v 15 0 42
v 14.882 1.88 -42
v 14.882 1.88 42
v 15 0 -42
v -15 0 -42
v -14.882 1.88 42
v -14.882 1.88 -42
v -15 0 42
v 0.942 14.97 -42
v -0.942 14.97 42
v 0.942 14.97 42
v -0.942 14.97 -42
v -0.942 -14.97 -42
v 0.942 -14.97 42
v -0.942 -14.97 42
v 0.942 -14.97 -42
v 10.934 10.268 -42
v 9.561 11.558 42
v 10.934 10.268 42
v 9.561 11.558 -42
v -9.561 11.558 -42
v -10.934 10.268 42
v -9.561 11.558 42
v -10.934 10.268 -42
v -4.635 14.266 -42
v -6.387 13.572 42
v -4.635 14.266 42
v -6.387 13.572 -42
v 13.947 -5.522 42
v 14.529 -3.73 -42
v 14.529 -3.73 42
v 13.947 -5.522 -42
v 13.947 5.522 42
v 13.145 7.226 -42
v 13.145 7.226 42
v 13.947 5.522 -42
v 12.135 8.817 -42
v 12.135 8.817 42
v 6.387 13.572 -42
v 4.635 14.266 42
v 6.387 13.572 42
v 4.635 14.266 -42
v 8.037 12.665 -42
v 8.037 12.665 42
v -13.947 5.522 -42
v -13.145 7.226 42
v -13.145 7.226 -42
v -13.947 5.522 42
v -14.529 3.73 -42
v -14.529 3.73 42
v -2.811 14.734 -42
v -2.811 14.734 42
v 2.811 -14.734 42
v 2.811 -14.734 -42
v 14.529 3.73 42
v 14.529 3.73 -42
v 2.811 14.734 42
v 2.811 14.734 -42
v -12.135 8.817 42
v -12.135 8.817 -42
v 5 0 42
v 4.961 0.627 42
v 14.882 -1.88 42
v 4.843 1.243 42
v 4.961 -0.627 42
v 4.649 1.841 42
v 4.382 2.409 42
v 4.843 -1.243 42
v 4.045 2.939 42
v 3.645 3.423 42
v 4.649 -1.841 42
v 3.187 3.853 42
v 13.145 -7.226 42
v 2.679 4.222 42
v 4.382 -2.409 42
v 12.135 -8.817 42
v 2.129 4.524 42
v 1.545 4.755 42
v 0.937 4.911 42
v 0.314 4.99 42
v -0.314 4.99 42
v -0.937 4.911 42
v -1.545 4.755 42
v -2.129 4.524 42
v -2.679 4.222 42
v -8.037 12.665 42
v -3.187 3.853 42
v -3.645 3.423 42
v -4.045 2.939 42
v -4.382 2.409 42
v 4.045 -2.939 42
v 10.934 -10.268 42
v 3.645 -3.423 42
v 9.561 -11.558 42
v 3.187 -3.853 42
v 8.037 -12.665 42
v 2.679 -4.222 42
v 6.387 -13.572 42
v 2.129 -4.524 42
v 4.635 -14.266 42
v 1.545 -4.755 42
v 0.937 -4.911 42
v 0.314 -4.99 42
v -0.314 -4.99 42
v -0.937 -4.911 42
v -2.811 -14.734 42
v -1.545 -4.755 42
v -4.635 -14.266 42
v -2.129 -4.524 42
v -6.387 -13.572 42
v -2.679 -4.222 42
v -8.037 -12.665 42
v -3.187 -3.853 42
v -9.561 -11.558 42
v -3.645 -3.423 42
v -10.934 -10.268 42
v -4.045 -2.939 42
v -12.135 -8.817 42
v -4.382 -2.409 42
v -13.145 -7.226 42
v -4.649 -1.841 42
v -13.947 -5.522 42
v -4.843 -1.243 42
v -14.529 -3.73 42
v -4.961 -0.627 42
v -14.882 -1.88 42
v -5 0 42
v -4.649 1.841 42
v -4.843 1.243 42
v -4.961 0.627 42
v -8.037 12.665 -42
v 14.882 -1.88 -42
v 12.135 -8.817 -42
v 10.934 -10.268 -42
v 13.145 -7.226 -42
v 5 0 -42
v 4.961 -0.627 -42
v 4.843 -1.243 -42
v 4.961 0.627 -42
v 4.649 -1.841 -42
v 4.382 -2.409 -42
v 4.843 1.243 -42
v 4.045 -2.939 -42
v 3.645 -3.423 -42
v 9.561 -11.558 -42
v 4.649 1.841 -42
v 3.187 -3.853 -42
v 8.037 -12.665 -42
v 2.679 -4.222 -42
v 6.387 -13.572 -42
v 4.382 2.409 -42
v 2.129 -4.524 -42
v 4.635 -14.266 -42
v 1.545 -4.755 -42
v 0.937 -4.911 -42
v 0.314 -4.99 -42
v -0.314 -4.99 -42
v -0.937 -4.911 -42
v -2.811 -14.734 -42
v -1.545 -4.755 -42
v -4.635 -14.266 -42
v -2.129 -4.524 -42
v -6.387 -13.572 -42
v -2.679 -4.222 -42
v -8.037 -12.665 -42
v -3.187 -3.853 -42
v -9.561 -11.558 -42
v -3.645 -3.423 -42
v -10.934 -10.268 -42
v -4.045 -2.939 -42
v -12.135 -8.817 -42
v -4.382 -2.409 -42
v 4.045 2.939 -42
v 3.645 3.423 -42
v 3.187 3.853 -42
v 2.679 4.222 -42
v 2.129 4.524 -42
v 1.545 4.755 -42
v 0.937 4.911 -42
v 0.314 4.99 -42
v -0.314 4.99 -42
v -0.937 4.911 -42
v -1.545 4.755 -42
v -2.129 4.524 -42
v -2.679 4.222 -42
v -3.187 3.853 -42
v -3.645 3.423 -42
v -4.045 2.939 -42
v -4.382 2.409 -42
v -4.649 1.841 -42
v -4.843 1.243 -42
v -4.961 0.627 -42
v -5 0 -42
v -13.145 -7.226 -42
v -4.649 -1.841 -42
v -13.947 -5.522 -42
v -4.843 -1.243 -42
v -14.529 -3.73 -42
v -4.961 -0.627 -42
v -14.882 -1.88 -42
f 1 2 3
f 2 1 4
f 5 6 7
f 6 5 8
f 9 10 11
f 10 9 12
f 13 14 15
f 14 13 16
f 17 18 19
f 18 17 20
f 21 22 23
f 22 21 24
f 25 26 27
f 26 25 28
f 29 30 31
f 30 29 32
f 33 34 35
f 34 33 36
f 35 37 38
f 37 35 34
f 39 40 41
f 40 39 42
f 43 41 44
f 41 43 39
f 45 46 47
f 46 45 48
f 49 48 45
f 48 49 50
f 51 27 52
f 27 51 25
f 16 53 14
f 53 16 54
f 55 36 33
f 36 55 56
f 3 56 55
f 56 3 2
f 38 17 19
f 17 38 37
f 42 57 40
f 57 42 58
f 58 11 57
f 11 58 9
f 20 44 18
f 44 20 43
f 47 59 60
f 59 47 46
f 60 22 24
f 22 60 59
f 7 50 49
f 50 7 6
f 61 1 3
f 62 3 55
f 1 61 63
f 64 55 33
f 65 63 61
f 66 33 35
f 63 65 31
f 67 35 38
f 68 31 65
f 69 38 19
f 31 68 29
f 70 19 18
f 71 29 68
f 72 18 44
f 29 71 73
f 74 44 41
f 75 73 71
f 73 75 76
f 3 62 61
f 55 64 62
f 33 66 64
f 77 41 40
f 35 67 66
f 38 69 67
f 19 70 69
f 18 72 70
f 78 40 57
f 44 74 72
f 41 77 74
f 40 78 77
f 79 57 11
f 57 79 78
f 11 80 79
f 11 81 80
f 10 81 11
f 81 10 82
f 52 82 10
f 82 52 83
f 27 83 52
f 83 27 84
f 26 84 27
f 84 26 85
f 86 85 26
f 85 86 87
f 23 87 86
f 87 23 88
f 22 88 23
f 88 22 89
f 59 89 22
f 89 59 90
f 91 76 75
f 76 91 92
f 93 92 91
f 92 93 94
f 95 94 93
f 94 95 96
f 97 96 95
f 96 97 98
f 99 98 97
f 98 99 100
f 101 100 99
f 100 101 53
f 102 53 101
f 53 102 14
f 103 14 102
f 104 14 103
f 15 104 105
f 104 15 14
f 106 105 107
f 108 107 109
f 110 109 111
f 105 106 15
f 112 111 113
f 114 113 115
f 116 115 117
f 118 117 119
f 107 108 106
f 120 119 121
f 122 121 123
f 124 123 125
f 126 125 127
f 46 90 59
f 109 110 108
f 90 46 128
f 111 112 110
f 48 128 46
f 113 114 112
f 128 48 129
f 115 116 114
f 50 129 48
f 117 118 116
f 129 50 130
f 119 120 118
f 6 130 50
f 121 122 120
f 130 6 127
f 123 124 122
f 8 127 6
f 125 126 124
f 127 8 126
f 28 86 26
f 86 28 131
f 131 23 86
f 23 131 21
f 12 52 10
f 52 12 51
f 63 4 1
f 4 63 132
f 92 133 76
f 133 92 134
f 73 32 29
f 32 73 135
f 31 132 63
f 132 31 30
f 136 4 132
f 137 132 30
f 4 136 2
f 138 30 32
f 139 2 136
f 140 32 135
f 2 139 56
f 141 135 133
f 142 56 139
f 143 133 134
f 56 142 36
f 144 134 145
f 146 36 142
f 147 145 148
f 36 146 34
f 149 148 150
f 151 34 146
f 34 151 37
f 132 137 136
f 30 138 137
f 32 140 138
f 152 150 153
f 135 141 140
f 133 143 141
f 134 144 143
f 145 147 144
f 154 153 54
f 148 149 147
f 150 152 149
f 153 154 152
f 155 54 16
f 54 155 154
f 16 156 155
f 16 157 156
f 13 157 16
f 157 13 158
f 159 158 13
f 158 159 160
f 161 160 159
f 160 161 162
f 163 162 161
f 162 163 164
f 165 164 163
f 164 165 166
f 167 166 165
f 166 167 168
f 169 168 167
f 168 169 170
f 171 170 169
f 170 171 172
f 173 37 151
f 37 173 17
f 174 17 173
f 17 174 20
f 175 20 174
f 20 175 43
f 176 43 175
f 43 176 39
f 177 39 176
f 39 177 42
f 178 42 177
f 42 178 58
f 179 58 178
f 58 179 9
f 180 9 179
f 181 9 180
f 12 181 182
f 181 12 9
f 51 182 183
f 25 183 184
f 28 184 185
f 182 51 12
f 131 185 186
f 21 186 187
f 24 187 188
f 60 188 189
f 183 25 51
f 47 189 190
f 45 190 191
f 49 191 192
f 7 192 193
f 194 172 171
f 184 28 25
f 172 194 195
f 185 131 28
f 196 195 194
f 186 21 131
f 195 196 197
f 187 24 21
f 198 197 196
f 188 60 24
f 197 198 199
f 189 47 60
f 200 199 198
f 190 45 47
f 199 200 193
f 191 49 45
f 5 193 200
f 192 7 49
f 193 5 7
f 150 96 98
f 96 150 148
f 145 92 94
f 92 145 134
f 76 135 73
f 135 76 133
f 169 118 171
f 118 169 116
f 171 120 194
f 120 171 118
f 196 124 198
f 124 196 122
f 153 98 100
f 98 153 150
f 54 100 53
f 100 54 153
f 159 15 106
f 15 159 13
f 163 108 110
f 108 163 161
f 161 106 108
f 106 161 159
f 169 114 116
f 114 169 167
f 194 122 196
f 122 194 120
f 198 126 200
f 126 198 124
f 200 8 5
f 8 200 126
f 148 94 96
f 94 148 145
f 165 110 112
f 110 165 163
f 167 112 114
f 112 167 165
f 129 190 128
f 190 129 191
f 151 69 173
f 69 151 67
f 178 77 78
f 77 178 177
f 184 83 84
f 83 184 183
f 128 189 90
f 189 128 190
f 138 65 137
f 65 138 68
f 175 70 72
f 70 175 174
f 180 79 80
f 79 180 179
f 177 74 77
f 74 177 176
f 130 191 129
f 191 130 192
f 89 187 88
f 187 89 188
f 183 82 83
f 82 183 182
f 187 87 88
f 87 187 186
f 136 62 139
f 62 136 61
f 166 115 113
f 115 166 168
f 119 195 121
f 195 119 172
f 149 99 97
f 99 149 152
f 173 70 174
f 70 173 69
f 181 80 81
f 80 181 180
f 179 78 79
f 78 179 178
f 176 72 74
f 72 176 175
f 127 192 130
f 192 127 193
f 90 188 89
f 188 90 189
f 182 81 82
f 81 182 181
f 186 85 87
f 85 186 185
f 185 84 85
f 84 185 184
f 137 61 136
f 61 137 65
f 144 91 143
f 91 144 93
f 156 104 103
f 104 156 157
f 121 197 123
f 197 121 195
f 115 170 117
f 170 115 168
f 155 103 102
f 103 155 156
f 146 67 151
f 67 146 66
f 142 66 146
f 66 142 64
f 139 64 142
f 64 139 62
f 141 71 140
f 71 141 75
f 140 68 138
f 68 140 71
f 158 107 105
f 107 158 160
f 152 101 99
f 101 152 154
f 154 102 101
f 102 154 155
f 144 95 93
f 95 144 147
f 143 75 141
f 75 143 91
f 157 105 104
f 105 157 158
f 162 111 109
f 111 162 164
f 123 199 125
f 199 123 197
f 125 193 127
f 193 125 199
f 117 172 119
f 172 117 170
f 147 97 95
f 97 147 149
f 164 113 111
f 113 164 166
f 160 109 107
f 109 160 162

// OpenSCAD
$fn = 50;


difference() {
	union() {
		translate(v = [0, 0, -42.0000000000]) {
			cylinder(h = 84, r = 15.0000000000);
		}
	}
	union() {
		translate(v = [0, 0, -100.0000000000]) {
			cylinder(h = 200, r = 5.0000000000);
		}
	}
}
